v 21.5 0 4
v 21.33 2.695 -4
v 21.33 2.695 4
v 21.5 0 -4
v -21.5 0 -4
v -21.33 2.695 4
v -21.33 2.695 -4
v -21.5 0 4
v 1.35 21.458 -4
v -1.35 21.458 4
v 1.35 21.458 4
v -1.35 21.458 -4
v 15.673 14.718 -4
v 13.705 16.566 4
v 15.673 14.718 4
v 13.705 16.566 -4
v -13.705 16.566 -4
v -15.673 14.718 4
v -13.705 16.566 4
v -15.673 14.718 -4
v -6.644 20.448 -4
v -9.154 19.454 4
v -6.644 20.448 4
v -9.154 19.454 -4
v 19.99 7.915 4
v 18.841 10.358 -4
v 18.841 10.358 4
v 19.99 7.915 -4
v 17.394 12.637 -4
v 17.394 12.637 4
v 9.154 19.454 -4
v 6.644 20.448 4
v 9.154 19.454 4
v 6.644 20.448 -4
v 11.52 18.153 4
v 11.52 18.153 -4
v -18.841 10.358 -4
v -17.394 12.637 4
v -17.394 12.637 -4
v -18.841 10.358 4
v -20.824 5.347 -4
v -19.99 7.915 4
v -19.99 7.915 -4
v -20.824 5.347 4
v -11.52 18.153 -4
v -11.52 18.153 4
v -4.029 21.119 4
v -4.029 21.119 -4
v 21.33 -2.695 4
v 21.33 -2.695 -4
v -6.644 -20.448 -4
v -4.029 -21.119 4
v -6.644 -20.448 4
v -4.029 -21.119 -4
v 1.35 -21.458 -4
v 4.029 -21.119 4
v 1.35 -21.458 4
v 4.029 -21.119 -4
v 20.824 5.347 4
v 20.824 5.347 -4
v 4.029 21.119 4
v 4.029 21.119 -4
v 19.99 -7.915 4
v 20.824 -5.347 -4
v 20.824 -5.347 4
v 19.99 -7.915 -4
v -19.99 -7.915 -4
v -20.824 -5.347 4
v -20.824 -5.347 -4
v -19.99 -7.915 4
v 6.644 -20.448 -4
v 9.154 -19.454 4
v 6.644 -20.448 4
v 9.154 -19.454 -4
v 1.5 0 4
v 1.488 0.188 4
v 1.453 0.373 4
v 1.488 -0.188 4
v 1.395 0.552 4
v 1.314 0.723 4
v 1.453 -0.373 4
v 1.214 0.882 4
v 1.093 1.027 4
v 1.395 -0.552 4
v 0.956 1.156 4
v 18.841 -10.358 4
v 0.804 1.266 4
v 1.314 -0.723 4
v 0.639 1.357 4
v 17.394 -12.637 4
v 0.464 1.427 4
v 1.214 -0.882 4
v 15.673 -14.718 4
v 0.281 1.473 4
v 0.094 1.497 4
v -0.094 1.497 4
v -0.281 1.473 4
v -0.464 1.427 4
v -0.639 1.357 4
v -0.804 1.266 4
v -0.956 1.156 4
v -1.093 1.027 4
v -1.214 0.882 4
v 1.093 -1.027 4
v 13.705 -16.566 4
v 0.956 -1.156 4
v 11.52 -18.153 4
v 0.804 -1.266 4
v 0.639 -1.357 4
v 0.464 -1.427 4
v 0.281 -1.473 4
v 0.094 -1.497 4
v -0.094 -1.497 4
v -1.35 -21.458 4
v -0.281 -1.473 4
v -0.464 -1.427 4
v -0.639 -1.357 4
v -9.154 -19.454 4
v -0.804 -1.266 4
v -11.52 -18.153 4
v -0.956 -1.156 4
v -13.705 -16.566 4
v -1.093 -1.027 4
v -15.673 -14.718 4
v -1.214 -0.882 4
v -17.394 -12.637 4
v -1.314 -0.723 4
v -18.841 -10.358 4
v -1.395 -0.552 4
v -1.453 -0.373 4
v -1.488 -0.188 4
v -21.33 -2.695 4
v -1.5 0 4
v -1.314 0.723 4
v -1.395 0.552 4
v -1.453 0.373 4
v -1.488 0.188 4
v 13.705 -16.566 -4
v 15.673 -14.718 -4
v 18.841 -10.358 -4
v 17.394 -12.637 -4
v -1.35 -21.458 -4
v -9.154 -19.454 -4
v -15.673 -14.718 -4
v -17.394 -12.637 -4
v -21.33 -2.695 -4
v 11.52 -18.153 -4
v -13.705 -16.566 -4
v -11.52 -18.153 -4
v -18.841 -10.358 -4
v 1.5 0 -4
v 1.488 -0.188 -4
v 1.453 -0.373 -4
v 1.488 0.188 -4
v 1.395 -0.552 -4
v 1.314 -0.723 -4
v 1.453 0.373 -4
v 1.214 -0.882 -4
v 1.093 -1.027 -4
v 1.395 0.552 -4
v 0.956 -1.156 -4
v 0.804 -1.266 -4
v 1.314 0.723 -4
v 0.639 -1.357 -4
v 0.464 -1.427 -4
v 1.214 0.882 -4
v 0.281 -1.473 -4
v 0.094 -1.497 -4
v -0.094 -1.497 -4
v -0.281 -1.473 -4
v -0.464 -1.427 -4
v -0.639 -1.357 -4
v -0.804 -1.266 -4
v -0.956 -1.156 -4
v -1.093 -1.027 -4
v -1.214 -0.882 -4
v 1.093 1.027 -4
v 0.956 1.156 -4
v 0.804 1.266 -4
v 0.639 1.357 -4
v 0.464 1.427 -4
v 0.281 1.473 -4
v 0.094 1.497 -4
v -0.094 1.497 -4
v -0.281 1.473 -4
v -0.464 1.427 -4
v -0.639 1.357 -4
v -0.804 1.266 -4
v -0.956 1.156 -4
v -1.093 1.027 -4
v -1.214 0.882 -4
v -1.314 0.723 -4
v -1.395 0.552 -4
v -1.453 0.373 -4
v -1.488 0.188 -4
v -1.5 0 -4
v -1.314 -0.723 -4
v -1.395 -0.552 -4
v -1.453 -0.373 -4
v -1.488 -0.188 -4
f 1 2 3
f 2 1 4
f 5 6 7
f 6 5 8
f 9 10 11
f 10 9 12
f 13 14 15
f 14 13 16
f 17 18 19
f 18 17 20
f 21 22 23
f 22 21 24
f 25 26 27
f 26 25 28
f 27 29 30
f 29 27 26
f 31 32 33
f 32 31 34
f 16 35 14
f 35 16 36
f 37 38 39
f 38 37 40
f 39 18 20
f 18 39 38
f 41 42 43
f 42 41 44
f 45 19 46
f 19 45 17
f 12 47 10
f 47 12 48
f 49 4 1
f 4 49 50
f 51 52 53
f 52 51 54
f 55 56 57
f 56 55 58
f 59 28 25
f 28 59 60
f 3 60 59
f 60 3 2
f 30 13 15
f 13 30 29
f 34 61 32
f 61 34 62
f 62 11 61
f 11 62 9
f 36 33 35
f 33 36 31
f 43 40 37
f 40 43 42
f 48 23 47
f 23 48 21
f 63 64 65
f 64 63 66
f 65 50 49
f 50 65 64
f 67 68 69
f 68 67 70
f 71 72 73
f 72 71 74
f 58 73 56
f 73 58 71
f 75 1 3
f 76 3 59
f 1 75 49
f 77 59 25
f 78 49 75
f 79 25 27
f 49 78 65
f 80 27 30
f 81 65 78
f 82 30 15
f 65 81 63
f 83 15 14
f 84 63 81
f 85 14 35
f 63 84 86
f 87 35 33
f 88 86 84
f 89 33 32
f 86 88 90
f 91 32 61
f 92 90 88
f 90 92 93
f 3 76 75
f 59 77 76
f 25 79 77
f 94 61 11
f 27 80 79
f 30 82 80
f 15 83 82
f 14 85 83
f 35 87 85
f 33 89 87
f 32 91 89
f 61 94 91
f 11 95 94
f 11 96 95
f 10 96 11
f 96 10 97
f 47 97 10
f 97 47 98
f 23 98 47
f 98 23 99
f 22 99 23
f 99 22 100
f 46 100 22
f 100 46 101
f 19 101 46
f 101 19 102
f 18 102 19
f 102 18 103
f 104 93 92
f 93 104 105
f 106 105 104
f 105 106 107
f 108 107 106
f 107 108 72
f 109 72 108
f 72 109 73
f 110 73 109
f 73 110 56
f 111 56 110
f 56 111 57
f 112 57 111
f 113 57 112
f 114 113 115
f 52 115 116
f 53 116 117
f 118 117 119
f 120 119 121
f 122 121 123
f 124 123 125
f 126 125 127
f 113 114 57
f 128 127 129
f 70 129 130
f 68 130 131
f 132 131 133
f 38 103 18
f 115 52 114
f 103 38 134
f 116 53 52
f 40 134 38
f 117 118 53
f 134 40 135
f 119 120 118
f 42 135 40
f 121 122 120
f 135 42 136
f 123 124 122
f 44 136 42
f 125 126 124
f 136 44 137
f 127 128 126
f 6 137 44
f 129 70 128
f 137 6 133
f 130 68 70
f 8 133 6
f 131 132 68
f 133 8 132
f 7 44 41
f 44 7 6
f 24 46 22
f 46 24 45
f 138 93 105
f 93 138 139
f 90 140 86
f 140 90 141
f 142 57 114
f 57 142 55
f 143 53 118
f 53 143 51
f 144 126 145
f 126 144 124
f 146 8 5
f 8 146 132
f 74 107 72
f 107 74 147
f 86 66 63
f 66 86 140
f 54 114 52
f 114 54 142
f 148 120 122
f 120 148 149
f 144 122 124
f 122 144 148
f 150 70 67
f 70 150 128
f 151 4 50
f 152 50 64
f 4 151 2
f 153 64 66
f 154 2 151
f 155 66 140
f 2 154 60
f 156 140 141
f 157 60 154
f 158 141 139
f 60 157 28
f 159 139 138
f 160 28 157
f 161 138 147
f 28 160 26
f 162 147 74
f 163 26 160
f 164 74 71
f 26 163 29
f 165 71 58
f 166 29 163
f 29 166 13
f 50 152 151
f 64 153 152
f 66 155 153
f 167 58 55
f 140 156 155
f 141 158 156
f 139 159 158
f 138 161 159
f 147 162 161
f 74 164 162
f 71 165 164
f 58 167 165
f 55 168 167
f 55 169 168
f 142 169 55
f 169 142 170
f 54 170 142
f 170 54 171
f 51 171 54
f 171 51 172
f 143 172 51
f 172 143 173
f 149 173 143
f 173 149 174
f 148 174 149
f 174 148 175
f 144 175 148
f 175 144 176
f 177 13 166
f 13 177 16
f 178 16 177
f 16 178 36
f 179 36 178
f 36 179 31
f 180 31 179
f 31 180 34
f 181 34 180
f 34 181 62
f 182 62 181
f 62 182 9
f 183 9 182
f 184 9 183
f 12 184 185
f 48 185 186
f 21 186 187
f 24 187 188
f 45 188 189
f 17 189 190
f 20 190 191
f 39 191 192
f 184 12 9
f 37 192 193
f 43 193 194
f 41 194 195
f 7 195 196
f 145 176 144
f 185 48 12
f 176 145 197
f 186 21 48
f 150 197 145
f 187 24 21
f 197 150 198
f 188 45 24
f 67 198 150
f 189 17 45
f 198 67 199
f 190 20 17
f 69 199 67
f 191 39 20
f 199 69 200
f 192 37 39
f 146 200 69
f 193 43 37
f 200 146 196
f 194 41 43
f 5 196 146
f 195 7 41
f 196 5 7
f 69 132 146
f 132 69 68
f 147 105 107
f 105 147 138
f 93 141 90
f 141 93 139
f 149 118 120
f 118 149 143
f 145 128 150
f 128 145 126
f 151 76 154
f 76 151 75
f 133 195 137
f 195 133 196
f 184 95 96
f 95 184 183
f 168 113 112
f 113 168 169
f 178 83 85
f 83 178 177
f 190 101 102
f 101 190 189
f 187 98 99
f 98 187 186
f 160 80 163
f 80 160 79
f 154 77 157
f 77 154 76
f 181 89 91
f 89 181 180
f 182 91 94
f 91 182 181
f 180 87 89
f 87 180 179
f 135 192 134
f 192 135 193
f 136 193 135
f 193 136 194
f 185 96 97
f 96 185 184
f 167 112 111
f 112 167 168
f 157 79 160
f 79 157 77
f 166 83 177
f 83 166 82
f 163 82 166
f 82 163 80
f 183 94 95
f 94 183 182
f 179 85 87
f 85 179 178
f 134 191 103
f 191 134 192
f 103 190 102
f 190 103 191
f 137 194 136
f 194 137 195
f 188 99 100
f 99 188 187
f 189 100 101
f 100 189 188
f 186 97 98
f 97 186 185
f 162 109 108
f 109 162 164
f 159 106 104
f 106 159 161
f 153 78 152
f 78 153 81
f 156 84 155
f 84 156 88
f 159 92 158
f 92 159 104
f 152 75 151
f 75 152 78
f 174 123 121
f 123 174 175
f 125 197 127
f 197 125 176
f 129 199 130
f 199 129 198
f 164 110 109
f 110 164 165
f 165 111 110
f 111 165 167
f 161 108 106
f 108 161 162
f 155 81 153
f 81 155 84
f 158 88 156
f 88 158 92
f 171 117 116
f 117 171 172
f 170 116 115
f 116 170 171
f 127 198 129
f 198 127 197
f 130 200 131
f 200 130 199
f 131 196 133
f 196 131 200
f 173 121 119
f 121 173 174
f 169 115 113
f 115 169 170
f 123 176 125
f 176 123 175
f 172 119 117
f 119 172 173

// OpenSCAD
$fn = 50;


difference() {
	union() {
		translate(v = [0, 0, -4.0000000000]) {
			cylinder(h = 8, r = 21.5000000000);
		}
	}
	union() {
		translate(v = [0, 0, -100.0000000000]) {
			cylinder(h = 200, r = 1.5000000000);
		}
	}
}
